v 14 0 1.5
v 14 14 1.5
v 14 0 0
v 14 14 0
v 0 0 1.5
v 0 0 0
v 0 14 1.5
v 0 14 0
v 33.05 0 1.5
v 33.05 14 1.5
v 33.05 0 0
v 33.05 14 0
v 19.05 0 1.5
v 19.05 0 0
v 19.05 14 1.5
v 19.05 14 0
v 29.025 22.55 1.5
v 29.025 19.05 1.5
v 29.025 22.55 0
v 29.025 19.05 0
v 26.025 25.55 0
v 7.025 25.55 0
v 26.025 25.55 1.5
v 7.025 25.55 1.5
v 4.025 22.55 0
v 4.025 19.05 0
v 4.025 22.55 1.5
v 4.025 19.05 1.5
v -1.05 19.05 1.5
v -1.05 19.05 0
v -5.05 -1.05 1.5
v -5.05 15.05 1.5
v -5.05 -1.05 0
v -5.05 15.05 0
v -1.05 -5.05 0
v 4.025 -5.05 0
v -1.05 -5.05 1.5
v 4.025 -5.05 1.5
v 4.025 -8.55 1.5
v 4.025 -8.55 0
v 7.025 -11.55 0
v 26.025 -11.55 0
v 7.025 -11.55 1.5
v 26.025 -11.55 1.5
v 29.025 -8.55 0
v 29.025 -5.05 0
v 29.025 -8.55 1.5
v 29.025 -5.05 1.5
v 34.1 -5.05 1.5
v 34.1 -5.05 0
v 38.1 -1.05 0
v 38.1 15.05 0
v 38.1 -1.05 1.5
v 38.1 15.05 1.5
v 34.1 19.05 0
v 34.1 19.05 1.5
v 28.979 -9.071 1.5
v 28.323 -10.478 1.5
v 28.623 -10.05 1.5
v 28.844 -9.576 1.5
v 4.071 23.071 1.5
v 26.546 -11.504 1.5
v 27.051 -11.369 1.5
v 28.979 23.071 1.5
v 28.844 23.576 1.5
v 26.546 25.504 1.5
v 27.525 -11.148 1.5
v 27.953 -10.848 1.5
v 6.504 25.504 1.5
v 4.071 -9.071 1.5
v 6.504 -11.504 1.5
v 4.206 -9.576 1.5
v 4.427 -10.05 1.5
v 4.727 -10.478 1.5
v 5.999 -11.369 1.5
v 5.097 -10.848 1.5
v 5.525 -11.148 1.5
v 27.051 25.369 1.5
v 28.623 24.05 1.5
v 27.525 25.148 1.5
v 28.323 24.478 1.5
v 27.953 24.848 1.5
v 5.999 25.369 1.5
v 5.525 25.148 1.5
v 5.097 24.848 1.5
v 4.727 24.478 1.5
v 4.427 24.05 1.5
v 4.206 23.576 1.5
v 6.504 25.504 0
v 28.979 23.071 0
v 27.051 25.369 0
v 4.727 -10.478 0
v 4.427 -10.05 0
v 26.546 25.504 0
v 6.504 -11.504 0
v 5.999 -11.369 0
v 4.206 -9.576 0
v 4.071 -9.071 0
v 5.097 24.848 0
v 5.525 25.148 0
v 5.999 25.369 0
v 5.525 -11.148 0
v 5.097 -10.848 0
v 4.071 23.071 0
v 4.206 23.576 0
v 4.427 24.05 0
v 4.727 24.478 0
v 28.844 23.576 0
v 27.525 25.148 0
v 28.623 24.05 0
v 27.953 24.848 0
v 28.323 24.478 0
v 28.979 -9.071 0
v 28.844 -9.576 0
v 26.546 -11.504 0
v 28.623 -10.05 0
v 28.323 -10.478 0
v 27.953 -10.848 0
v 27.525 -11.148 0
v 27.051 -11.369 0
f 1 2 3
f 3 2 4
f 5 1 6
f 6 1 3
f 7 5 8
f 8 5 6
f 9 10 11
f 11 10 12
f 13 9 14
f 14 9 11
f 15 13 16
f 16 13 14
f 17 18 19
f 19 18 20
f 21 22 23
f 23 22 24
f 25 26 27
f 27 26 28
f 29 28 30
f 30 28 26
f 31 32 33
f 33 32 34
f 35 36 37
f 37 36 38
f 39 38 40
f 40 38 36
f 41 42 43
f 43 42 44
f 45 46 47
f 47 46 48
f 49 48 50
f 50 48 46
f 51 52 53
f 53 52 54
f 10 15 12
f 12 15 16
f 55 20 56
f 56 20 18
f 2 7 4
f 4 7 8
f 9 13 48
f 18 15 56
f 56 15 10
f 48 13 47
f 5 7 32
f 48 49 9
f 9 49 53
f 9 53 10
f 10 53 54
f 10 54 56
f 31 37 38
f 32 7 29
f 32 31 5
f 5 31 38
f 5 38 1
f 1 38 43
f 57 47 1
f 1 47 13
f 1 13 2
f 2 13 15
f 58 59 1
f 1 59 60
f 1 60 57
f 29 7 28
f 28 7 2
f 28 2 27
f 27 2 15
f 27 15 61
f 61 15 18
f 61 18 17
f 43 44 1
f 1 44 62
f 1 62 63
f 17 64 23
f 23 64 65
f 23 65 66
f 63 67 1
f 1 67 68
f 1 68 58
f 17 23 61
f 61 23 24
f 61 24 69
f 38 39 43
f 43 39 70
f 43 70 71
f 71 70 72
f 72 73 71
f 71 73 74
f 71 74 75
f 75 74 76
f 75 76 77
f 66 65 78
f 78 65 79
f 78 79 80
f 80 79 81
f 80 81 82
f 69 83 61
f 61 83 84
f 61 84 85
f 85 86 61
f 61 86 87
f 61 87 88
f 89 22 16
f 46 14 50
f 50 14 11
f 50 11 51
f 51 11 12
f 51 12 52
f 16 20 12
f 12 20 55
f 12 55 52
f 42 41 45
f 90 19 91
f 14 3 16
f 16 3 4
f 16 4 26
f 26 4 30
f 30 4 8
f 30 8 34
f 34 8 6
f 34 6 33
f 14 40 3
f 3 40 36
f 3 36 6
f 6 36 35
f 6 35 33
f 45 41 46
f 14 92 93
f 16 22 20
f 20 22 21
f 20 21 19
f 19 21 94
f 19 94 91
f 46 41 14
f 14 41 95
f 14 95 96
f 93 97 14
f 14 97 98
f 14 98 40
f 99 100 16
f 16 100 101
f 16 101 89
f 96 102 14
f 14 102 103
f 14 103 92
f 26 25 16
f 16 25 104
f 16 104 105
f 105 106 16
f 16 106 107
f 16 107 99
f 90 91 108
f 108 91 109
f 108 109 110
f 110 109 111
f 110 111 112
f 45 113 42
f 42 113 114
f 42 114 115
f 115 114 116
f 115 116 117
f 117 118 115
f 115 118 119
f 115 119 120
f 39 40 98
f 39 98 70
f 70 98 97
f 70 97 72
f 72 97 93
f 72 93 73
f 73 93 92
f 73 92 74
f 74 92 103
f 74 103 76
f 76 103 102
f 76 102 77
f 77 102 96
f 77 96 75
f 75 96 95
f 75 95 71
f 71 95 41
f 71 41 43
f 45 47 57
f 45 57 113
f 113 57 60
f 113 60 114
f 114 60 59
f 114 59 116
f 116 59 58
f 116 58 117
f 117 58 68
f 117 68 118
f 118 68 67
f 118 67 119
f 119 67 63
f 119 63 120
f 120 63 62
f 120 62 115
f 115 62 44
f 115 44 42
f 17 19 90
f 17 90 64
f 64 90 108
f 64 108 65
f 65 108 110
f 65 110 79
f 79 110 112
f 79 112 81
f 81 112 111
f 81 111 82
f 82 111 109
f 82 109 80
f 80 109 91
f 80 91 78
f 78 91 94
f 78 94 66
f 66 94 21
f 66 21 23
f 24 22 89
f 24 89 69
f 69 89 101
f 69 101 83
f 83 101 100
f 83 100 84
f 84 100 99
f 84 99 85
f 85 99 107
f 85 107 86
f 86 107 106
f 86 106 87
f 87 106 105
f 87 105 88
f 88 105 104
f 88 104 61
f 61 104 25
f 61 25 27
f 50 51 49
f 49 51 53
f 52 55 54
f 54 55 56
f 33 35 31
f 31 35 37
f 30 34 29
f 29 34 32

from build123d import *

# Parameters (mm, degrees)
SKETCH1_W           = 25
SKETCH1_H           = 6.5
SKETCH1_W_2         = 43.15
SKETCH1_H_2         = 24.1
SKETCH1_W_3         = 14
SKETCH1_H_3         = 14
BOSS_EXTRUDE1_DEPTH = 1.5
FILLET1_R           = 3
CHAMFER1_SIZE       = 4


with BuildPart() as part:
    # Sketch1 → Boss-Extrude1 (new body)
    # profile 1 of 3: a face of its own
    with BuildSketch(Plane.XY):
        with Locations((16.525, 22.3)):
            Rectangle(SKETCH1_W, SKETCH1_H)
    # profile 2 of 3: a face of its own
    with BuildSketch(Plane.XY):
        with Locations((16.525, 7)):
            Rectangle(SKETCH1_W_2, SKETCH1_H_2)
        with Locations((26.05, 7)):
            Rectangle(SKETCH1_W_3, SKETCH1_H_3, mode=Mode.SUBTRACT)
        with Locations((7, 7)):
            Rectangle(SKETCH1_W_3, SKETCH1_H_3, mode=Mode.SUBTRACT)
    # profile 3 of 3: a face of its own
    with BuildSketch(Plane.XY):
        with Locations((16.525, -8.3)):
            Rectangle(SKETCH1_W, SKETCH1_H)
    extrude(amount=BOSS_EXTRUDE1_DEPTH)

    # Fillet1
    fillet1_edges = [part.edges().sort_by_distance(p)[0] for p in [
        (29.025, -11.55, 0.75),
        (4.025, -11.55, 0.75),
        (4.025, 25.55, 0.75),
        (29.025, 25.55, 0.75),
    ]]
    fillet(fillet1_edges, radius=FILLET1_R)

    # Chamfer1
    chamfer1_edges = [part.edges().sort_by_distance(p)[0] for p in [
        (38.1, 19.05, 0.75),
        (38.1, -5.05, 0.75),
        (-5.05, -5.05, 0.75),
        (-5.05, 19.05, 0.75),
    ]]
    chamfer(chamfer1_edges, length=CHAMFER1_SIZE)


solid = part.part
